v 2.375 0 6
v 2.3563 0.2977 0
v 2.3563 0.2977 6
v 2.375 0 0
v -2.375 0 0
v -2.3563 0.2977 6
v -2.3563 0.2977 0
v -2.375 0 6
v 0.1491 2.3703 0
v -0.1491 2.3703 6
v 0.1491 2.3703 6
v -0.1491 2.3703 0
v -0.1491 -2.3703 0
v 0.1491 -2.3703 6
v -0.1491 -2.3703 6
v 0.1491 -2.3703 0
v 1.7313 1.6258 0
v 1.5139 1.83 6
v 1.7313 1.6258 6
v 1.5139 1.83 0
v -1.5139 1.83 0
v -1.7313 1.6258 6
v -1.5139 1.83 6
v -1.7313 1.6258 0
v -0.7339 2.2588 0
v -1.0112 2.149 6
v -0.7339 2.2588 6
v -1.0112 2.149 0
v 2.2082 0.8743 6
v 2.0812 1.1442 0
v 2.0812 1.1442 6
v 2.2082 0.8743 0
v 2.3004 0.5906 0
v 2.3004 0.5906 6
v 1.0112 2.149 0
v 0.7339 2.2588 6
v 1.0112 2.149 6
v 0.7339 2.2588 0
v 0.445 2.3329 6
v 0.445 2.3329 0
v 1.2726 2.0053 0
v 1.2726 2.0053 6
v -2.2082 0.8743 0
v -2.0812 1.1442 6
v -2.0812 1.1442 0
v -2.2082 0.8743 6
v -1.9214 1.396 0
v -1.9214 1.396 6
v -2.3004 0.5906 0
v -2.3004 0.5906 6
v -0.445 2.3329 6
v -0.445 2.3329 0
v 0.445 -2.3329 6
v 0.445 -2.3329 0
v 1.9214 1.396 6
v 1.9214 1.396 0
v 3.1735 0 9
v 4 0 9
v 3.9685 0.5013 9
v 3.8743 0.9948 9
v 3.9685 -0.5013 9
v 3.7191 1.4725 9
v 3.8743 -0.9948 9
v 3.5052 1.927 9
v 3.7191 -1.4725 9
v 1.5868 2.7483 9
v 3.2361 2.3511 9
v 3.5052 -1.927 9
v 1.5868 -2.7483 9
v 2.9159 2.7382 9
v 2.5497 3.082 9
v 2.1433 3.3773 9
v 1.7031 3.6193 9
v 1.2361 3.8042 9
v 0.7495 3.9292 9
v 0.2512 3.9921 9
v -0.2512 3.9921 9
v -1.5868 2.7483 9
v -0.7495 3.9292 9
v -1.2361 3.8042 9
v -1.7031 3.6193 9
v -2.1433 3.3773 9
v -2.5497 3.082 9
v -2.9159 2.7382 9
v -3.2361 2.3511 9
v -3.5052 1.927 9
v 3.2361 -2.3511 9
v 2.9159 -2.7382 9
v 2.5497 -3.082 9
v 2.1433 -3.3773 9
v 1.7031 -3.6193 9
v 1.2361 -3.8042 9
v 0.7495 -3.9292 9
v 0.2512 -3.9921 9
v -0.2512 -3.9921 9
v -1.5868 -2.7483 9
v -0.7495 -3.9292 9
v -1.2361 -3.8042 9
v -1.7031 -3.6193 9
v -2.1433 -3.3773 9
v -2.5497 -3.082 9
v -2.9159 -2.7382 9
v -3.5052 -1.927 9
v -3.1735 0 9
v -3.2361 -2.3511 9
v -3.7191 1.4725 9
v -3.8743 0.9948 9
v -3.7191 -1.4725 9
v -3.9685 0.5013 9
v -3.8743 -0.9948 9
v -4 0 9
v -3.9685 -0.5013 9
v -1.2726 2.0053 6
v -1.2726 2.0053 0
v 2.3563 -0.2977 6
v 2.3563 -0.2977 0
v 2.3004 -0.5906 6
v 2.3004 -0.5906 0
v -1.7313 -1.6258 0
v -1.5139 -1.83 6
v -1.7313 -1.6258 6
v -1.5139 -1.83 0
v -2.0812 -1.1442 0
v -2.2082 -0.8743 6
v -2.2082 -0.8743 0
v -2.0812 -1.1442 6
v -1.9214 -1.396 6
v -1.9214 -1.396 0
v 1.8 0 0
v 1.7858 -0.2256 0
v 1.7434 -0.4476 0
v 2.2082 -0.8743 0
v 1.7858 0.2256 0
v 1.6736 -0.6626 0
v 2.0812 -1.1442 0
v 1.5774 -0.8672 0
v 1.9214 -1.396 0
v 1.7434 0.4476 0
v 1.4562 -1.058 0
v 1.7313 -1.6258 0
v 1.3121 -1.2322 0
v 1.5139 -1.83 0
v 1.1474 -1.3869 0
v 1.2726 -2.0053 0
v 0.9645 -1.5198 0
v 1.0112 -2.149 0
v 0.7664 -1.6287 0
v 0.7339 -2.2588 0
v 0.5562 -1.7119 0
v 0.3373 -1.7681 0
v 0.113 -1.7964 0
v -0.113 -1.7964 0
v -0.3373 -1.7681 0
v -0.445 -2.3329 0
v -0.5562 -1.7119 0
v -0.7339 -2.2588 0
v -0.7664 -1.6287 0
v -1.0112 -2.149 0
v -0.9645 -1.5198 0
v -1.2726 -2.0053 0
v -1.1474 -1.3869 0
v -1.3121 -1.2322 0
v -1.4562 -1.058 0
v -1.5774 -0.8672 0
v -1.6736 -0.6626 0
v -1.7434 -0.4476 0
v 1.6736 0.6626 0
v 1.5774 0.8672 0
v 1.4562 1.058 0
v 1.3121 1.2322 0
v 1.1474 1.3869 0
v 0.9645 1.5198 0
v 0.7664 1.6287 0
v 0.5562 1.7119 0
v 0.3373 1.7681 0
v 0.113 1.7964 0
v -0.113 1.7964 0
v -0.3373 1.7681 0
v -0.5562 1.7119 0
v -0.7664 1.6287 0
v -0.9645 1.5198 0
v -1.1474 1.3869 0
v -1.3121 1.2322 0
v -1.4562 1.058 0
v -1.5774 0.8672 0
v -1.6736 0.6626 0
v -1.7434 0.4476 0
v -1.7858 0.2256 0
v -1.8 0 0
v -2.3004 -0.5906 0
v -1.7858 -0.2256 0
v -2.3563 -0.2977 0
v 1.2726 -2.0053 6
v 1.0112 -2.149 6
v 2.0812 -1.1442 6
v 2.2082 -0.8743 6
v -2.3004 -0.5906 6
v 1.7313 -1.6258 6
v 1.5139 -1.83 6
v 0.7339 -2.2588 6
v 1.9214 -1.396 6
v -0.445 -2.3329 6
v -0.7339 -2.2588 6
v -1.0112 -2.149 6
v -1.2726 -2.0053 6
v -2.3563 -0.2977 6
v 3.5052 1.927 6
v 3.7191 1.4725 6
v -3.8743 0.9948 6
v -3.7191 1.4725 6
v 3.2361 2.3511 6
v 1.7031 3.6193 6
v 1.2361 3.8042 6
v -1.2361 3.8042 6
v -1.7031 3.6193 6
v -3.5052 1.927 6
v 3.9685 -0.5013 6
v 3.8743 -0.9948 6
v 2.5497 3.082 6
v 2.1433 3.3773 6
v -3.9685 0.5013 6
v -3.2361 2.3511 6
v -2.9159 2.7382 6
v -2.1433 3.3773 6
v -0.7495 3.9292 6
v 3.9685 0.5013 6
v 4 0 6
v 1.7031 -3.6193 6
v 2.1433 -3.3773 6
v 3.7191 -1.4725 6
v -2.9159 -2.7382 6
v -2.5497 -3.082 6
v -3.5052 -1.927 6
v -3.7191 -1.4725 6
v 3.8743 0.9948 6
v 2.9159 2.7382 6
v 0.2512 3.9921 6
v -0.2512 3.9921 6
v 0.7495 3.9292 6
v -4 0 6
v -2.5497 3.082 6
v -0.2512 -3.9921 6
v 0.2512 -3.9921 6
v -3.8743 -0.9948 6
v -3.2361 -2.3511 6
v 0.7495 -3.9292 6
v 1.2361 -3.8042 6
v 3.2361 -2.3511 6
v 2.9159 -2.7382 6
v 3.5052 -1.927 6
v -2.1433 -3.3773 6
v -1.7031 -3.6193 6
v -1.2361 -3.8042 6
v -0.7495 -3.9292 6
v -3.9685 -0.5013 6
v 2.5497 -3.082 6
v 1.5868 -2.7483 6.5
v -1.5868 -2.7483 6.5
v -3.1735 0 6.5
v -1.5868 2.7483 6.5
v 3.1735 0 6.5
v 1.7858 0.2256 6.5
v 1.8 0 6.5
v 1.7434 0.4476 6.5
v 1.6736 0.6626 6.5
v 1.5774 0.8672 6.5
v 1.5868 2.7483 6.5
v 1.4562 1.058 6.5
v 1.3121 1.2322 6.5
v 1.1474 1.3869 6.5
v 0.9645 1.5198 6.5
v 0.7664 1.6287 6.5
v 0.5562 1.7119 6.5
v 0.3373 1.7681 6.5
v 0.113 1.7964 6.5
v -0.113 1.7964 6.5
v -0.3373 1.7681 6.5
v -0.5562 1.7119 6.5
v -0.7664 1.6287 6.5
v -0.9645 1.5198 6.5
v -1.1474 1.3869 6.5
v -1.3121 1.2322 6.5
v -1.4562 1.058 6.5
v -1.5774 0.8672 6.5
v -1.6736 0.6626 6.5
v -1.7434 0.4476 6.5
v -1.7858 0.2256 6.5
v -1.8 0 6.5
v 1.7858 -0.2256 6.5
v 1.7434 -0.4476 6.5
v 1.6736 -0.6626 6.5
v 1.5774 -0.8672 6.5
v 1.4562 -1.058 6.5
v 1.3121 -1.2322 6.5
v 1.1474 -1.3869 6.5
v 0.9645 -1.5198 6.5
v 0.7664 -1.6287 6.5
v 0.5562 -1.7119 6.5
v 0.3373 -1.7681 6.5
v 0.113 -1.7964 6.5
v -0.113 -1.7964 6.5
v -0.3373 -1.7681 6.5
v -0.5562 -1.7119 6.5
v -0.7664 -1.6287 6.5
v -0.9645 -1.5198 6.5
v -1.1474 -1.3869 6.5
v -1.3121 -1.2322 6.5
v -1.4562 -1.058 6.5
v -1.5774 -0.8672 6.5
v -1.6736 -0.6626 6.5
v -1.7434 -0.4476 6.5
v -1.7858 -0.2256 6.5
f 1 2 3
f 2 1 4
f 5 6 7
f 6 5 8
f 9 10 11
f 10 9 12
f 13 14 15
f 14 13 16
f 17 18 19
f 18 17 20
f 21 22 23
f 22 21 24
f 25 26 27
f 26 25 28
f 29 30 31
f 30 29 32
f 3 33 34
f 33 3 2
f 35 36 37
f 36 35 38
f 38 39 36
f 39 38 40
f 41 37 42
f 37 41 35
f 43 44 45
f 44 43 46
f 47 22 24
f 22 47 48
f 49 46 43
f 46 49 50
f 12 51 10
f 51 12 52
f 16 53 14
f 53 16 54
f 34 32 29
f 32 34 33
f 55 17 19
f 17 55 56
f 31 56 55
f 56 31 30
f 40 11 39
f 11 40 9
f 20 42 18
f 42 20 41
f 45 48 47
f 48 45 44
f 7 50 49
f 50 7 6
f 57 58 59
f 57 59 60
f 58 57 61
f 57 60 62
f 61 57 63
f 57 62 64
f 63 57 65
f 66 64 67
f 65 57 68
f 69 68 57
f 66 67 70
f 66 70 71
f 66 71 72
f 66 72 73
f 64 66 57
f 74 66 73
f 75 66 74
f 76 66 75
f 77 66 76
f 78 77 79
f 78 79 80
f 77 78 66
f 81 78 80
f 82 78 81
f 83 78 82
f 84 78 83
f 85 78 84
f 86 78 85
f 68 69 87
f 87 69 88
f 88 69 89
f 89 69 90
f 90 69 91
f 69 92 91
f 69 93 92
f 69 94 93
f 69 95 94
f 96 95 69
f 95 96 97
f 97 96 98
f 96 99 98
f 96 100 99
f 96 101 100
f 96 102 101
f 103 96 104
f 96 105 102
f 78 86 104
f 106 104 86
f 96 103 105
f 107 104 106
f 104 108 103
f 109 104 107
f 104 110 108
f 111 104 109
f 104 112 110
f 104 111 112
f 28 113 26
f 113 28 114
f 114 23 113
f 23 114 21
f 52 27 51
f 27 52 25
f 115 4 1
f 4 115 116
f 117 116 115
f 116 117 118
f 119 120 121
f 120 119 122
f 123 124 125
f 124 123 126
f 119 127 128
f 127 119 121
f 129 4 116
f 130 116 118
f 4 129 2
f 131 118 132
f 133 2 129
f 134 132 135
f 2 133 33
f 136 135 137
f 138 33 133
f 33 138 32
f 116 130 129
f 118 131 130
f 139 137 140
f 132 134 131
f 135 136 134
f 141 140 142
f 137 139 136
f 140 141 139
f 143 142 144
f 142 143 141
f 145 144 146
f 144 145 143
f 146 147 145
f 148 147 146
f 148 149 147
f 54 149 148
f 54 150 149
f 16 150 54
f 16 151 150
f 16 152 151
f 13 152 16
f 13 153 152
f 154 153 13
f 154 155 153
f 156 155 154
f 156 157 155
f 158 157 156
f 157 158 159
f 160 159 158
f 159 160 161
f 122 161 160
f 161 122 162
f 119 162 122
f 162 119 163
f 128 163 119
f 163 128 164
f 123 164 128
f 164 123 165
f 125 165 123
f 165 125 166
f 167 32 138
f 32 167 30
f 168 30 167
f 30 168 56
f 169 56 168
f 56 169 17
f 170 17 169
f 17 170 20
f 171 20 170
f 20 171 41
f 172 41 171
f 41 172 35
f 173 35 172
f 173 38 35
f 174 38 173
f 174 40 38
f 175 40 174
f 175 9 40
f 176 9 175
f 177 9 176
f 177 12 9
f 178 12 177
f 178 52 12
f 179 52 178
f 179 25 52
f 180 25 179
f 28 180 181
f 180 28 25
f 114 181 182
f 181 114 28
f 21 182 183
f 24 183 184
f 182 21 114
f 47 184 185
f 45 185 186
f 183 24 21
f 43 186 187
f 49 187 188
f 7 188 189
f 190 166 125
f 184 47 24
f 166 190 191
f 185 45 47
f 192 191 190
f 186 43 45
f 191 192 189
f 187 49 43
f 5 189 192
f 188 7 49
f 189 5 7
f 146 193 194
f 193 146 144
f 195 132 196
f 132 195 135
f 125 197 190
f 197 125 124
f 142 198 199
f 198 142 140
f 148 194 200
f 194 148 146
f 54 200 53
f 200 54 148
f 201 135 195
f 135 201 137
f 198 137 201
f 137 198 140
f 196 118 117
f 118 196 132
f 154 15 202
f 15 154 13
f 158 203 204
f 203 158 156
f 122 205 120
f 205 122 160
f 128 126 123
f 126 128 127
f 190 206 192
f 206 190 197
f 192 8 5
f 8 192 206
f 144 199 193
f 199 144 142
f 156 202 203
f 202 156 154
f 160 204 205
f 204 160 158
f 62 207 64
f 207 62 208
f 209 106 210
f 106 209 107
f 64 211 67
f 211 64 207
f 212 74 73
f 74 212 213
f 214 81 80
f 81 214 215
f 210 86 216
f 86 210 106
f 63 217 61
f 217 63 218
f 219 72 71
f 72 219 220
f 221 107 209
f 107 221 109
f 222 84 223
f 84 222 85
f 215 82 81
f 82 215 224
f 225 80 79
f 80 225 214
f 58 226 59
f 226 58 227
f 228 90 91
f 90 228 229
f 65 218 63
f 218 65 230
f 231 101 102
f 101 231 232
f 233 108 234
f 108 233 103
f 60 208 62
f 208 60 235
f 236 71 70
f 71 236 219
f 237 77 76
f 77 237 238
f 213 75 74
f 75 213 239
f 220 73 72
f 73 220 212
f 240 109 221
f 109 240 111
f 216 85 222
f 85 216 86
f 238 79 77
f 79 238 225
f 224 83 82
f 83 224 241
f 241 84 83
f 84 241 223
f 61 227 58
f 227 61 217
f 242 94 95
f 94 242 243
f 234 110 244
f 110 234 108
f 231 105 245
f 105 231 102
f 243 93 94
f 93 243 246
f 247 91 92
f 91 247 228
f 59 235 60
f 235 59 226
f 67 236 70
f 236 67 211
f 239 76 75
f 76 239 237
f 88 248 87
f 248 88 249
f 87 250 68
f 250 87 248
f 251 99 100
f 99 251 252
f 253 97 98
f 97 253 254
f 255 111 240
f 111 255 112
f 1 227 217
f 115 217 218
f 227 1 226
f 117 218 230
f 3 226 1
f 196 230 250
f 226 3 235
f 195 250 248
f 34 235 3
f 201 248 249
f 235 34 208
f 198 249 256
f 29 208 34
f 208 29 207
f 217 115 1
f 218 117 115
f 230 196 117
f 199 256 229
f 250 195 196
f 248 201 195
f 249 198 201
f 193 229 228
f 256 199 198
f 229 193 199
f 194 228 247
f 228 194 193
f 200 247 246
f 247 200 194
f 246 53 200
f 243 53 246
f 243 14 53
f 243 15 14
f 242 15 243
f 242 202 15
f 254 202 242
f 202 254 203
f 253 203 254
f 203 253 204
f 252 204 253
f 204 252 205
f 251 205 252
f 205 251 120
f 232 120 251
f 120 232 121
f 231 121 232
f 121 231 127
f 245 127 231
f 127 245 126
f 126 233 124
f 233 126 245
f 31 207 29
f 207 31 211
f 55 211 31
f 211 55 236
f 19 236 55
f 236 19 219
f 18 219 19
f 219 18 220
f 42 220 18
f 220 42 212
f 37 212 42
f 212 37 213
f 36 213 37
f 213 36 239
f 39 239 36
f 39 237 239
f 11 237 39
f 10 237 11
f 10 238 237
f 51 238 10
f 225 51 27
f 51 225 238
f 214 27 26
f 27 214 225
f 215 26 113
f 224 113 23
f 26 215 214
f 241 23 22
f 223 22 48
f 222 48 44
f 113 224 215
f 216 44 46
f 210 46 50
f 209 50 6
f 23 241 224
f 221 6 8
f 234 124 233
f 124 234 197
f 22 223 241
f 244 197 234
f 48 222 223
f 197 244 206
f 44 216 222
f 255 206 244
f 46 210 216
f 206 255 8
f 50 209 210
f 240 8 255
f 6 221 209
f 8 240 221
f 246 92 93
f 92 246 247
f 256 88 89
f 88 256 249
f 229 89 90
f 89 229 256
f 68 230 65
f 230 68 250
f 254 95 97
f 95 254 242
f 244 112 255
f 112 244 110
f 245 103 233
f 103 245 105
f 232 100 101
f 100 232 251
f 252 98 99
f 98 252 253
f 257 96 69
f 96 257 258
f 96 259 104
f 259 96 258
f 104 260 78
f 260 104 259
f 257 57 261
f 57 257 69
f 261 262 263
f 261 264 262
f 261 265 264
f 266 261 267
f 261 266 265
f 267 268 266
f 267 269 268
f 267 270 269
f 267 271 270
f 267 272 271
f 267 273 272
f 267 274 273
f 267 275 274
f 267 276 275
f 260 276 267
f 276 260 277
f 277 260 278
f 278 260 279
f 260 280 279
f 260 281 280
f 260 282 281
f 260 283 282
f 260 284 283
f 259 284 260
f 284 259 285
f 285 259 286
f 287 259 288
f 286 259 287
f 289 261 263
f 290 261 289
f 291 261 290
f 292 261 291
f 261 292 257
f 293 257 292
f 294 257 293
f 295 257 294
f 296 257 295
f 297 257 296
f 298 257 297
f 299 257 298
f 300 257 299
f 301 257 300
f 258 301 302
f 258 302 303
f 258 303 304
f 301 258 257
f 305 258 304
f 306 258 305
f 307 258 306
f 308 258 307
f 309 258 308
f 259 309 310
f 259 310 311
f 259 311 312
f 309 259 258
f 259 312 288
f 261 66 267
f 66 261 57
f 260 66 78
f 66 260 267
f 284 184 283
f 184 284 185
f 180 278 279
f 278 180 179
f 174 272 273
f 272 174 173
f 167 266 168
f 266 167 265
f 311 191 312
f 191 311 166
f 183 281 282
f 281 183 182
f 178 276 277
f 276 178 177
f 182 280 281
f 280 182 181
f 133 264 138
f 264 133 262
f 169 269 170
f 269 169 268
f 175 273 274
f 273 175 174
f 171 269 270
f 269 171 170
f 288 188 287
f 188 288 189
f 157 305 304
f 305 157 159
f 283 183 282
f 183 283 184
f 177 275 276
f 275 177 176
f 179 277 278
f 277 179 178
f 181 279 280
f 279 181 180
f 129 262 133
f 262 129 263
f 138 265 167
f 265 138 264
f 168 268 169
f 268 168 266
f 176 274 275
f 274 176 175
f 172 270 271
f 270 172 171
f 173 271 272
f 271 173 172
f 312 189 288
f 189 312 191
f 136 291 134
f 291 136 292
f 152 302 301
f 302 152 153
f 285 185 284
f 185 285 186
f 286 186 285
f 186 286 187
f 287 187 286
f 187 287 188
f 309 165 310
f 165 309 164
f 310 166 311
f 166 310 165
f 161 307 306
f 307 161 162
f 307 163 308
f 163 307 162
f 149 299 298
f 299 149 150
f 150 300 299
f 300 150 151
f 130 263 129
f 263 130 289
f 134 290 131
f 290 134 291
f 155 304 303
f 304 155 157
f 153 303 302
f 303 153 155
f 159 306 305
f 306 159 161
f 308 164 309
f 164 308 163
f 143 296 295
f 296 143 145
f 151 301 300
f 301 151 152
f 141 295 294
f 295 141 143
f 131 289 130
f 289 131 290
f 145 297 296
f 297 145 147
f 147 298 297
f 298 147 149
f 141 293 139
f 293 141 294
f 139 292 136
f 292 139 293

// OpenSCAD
$fn = 50;


difference() {
	union() {
		cylinder(h = 9, r = 2.3750000000);
		translate(v = [0, 0, 6.0000000000]) {
			cylinder(h = 3, r = 4.0000000000);
		}
	}
	union() {
		translate(v = [0, 0, -3]) {
			rotate(a = [0, 180, 0]) {
				difference() {
					union() {
						translate(v = [0, 0, -12.0000000000]) {
							rotate(a = [0, 0, 0]) {
								difference() {
									union() {
										linear_extrude(height = 2.5000000000) {
											polygon(points = [[3.1735000000, 0.0000000000], [1.5867500000, 2.7483316189], [-1.5867500000, 2.7483316189], [-3.1735000000, 0.0000000000], [-1.5867500000, -2.7483316189], [1.5867500000, -2.7483316189]]);
										}
									}
									union();
								}
							}
						}
						translate(v = [0, 0, -12.0000000000]) {
							rotate(a = [0, 0, 0]) {
								difference() {
									union() {
										linear_extrude(height = 2.5000000000) {
											polygon(points = [[3.1735000000, 0.0000000000], [1.5867500000, 2.7483316189], [-1.5867500000, 2.7483316189], [-3.1735000000, 0.0000000000], [-1.5867500000, -2.7483316189], [1.5867500000, -2.7483316189]]);
										}
									}
									union();
								}
							}
						}
						translate(v = [0, 0, -12.0000000000]) {
							rotate(a = [0, 0, 0]) {
								difference() {
									union() {
										linear_extrude(height = 2.5000000000) {
											polygon(points = [[3.1735000000, 0.0000000000], [1.5867500000, 2.7483316189], [-1.5867500000, 2.7483316189], [-3.1735000000, 0.0000000000], [-1.5867500000, -2.7483316189], [1.5867500000, -2.7483316189]]);
										}
									}
									union();
								}
							}
						}
						translate(v = [0, 0, -1.7000000000]) {
							cylinder(h = 1.7000000000, r1 = 1.5000000000, r2 = 2.4000000000);
						}
						translate(v = [0, 0, -12.0000000000]) {
							cylinder(h = 12, r = 1.5000000000);
						}
						translate(v = [0, 0, -12.0000000000]) {
							cylinder(h = 12, r = 1.8000000000);
						}
						translate(v = [0, 0, -12.0000000000]) {
							cylinder(h = 12, r = 1.5000000000);
						}
					}
					union();
				}
			}
		}
		translate(v = [0, 0, -100.0000000000]) {
			cylinder(h = 200, r = 1.5000000000);
		}
	}
}
